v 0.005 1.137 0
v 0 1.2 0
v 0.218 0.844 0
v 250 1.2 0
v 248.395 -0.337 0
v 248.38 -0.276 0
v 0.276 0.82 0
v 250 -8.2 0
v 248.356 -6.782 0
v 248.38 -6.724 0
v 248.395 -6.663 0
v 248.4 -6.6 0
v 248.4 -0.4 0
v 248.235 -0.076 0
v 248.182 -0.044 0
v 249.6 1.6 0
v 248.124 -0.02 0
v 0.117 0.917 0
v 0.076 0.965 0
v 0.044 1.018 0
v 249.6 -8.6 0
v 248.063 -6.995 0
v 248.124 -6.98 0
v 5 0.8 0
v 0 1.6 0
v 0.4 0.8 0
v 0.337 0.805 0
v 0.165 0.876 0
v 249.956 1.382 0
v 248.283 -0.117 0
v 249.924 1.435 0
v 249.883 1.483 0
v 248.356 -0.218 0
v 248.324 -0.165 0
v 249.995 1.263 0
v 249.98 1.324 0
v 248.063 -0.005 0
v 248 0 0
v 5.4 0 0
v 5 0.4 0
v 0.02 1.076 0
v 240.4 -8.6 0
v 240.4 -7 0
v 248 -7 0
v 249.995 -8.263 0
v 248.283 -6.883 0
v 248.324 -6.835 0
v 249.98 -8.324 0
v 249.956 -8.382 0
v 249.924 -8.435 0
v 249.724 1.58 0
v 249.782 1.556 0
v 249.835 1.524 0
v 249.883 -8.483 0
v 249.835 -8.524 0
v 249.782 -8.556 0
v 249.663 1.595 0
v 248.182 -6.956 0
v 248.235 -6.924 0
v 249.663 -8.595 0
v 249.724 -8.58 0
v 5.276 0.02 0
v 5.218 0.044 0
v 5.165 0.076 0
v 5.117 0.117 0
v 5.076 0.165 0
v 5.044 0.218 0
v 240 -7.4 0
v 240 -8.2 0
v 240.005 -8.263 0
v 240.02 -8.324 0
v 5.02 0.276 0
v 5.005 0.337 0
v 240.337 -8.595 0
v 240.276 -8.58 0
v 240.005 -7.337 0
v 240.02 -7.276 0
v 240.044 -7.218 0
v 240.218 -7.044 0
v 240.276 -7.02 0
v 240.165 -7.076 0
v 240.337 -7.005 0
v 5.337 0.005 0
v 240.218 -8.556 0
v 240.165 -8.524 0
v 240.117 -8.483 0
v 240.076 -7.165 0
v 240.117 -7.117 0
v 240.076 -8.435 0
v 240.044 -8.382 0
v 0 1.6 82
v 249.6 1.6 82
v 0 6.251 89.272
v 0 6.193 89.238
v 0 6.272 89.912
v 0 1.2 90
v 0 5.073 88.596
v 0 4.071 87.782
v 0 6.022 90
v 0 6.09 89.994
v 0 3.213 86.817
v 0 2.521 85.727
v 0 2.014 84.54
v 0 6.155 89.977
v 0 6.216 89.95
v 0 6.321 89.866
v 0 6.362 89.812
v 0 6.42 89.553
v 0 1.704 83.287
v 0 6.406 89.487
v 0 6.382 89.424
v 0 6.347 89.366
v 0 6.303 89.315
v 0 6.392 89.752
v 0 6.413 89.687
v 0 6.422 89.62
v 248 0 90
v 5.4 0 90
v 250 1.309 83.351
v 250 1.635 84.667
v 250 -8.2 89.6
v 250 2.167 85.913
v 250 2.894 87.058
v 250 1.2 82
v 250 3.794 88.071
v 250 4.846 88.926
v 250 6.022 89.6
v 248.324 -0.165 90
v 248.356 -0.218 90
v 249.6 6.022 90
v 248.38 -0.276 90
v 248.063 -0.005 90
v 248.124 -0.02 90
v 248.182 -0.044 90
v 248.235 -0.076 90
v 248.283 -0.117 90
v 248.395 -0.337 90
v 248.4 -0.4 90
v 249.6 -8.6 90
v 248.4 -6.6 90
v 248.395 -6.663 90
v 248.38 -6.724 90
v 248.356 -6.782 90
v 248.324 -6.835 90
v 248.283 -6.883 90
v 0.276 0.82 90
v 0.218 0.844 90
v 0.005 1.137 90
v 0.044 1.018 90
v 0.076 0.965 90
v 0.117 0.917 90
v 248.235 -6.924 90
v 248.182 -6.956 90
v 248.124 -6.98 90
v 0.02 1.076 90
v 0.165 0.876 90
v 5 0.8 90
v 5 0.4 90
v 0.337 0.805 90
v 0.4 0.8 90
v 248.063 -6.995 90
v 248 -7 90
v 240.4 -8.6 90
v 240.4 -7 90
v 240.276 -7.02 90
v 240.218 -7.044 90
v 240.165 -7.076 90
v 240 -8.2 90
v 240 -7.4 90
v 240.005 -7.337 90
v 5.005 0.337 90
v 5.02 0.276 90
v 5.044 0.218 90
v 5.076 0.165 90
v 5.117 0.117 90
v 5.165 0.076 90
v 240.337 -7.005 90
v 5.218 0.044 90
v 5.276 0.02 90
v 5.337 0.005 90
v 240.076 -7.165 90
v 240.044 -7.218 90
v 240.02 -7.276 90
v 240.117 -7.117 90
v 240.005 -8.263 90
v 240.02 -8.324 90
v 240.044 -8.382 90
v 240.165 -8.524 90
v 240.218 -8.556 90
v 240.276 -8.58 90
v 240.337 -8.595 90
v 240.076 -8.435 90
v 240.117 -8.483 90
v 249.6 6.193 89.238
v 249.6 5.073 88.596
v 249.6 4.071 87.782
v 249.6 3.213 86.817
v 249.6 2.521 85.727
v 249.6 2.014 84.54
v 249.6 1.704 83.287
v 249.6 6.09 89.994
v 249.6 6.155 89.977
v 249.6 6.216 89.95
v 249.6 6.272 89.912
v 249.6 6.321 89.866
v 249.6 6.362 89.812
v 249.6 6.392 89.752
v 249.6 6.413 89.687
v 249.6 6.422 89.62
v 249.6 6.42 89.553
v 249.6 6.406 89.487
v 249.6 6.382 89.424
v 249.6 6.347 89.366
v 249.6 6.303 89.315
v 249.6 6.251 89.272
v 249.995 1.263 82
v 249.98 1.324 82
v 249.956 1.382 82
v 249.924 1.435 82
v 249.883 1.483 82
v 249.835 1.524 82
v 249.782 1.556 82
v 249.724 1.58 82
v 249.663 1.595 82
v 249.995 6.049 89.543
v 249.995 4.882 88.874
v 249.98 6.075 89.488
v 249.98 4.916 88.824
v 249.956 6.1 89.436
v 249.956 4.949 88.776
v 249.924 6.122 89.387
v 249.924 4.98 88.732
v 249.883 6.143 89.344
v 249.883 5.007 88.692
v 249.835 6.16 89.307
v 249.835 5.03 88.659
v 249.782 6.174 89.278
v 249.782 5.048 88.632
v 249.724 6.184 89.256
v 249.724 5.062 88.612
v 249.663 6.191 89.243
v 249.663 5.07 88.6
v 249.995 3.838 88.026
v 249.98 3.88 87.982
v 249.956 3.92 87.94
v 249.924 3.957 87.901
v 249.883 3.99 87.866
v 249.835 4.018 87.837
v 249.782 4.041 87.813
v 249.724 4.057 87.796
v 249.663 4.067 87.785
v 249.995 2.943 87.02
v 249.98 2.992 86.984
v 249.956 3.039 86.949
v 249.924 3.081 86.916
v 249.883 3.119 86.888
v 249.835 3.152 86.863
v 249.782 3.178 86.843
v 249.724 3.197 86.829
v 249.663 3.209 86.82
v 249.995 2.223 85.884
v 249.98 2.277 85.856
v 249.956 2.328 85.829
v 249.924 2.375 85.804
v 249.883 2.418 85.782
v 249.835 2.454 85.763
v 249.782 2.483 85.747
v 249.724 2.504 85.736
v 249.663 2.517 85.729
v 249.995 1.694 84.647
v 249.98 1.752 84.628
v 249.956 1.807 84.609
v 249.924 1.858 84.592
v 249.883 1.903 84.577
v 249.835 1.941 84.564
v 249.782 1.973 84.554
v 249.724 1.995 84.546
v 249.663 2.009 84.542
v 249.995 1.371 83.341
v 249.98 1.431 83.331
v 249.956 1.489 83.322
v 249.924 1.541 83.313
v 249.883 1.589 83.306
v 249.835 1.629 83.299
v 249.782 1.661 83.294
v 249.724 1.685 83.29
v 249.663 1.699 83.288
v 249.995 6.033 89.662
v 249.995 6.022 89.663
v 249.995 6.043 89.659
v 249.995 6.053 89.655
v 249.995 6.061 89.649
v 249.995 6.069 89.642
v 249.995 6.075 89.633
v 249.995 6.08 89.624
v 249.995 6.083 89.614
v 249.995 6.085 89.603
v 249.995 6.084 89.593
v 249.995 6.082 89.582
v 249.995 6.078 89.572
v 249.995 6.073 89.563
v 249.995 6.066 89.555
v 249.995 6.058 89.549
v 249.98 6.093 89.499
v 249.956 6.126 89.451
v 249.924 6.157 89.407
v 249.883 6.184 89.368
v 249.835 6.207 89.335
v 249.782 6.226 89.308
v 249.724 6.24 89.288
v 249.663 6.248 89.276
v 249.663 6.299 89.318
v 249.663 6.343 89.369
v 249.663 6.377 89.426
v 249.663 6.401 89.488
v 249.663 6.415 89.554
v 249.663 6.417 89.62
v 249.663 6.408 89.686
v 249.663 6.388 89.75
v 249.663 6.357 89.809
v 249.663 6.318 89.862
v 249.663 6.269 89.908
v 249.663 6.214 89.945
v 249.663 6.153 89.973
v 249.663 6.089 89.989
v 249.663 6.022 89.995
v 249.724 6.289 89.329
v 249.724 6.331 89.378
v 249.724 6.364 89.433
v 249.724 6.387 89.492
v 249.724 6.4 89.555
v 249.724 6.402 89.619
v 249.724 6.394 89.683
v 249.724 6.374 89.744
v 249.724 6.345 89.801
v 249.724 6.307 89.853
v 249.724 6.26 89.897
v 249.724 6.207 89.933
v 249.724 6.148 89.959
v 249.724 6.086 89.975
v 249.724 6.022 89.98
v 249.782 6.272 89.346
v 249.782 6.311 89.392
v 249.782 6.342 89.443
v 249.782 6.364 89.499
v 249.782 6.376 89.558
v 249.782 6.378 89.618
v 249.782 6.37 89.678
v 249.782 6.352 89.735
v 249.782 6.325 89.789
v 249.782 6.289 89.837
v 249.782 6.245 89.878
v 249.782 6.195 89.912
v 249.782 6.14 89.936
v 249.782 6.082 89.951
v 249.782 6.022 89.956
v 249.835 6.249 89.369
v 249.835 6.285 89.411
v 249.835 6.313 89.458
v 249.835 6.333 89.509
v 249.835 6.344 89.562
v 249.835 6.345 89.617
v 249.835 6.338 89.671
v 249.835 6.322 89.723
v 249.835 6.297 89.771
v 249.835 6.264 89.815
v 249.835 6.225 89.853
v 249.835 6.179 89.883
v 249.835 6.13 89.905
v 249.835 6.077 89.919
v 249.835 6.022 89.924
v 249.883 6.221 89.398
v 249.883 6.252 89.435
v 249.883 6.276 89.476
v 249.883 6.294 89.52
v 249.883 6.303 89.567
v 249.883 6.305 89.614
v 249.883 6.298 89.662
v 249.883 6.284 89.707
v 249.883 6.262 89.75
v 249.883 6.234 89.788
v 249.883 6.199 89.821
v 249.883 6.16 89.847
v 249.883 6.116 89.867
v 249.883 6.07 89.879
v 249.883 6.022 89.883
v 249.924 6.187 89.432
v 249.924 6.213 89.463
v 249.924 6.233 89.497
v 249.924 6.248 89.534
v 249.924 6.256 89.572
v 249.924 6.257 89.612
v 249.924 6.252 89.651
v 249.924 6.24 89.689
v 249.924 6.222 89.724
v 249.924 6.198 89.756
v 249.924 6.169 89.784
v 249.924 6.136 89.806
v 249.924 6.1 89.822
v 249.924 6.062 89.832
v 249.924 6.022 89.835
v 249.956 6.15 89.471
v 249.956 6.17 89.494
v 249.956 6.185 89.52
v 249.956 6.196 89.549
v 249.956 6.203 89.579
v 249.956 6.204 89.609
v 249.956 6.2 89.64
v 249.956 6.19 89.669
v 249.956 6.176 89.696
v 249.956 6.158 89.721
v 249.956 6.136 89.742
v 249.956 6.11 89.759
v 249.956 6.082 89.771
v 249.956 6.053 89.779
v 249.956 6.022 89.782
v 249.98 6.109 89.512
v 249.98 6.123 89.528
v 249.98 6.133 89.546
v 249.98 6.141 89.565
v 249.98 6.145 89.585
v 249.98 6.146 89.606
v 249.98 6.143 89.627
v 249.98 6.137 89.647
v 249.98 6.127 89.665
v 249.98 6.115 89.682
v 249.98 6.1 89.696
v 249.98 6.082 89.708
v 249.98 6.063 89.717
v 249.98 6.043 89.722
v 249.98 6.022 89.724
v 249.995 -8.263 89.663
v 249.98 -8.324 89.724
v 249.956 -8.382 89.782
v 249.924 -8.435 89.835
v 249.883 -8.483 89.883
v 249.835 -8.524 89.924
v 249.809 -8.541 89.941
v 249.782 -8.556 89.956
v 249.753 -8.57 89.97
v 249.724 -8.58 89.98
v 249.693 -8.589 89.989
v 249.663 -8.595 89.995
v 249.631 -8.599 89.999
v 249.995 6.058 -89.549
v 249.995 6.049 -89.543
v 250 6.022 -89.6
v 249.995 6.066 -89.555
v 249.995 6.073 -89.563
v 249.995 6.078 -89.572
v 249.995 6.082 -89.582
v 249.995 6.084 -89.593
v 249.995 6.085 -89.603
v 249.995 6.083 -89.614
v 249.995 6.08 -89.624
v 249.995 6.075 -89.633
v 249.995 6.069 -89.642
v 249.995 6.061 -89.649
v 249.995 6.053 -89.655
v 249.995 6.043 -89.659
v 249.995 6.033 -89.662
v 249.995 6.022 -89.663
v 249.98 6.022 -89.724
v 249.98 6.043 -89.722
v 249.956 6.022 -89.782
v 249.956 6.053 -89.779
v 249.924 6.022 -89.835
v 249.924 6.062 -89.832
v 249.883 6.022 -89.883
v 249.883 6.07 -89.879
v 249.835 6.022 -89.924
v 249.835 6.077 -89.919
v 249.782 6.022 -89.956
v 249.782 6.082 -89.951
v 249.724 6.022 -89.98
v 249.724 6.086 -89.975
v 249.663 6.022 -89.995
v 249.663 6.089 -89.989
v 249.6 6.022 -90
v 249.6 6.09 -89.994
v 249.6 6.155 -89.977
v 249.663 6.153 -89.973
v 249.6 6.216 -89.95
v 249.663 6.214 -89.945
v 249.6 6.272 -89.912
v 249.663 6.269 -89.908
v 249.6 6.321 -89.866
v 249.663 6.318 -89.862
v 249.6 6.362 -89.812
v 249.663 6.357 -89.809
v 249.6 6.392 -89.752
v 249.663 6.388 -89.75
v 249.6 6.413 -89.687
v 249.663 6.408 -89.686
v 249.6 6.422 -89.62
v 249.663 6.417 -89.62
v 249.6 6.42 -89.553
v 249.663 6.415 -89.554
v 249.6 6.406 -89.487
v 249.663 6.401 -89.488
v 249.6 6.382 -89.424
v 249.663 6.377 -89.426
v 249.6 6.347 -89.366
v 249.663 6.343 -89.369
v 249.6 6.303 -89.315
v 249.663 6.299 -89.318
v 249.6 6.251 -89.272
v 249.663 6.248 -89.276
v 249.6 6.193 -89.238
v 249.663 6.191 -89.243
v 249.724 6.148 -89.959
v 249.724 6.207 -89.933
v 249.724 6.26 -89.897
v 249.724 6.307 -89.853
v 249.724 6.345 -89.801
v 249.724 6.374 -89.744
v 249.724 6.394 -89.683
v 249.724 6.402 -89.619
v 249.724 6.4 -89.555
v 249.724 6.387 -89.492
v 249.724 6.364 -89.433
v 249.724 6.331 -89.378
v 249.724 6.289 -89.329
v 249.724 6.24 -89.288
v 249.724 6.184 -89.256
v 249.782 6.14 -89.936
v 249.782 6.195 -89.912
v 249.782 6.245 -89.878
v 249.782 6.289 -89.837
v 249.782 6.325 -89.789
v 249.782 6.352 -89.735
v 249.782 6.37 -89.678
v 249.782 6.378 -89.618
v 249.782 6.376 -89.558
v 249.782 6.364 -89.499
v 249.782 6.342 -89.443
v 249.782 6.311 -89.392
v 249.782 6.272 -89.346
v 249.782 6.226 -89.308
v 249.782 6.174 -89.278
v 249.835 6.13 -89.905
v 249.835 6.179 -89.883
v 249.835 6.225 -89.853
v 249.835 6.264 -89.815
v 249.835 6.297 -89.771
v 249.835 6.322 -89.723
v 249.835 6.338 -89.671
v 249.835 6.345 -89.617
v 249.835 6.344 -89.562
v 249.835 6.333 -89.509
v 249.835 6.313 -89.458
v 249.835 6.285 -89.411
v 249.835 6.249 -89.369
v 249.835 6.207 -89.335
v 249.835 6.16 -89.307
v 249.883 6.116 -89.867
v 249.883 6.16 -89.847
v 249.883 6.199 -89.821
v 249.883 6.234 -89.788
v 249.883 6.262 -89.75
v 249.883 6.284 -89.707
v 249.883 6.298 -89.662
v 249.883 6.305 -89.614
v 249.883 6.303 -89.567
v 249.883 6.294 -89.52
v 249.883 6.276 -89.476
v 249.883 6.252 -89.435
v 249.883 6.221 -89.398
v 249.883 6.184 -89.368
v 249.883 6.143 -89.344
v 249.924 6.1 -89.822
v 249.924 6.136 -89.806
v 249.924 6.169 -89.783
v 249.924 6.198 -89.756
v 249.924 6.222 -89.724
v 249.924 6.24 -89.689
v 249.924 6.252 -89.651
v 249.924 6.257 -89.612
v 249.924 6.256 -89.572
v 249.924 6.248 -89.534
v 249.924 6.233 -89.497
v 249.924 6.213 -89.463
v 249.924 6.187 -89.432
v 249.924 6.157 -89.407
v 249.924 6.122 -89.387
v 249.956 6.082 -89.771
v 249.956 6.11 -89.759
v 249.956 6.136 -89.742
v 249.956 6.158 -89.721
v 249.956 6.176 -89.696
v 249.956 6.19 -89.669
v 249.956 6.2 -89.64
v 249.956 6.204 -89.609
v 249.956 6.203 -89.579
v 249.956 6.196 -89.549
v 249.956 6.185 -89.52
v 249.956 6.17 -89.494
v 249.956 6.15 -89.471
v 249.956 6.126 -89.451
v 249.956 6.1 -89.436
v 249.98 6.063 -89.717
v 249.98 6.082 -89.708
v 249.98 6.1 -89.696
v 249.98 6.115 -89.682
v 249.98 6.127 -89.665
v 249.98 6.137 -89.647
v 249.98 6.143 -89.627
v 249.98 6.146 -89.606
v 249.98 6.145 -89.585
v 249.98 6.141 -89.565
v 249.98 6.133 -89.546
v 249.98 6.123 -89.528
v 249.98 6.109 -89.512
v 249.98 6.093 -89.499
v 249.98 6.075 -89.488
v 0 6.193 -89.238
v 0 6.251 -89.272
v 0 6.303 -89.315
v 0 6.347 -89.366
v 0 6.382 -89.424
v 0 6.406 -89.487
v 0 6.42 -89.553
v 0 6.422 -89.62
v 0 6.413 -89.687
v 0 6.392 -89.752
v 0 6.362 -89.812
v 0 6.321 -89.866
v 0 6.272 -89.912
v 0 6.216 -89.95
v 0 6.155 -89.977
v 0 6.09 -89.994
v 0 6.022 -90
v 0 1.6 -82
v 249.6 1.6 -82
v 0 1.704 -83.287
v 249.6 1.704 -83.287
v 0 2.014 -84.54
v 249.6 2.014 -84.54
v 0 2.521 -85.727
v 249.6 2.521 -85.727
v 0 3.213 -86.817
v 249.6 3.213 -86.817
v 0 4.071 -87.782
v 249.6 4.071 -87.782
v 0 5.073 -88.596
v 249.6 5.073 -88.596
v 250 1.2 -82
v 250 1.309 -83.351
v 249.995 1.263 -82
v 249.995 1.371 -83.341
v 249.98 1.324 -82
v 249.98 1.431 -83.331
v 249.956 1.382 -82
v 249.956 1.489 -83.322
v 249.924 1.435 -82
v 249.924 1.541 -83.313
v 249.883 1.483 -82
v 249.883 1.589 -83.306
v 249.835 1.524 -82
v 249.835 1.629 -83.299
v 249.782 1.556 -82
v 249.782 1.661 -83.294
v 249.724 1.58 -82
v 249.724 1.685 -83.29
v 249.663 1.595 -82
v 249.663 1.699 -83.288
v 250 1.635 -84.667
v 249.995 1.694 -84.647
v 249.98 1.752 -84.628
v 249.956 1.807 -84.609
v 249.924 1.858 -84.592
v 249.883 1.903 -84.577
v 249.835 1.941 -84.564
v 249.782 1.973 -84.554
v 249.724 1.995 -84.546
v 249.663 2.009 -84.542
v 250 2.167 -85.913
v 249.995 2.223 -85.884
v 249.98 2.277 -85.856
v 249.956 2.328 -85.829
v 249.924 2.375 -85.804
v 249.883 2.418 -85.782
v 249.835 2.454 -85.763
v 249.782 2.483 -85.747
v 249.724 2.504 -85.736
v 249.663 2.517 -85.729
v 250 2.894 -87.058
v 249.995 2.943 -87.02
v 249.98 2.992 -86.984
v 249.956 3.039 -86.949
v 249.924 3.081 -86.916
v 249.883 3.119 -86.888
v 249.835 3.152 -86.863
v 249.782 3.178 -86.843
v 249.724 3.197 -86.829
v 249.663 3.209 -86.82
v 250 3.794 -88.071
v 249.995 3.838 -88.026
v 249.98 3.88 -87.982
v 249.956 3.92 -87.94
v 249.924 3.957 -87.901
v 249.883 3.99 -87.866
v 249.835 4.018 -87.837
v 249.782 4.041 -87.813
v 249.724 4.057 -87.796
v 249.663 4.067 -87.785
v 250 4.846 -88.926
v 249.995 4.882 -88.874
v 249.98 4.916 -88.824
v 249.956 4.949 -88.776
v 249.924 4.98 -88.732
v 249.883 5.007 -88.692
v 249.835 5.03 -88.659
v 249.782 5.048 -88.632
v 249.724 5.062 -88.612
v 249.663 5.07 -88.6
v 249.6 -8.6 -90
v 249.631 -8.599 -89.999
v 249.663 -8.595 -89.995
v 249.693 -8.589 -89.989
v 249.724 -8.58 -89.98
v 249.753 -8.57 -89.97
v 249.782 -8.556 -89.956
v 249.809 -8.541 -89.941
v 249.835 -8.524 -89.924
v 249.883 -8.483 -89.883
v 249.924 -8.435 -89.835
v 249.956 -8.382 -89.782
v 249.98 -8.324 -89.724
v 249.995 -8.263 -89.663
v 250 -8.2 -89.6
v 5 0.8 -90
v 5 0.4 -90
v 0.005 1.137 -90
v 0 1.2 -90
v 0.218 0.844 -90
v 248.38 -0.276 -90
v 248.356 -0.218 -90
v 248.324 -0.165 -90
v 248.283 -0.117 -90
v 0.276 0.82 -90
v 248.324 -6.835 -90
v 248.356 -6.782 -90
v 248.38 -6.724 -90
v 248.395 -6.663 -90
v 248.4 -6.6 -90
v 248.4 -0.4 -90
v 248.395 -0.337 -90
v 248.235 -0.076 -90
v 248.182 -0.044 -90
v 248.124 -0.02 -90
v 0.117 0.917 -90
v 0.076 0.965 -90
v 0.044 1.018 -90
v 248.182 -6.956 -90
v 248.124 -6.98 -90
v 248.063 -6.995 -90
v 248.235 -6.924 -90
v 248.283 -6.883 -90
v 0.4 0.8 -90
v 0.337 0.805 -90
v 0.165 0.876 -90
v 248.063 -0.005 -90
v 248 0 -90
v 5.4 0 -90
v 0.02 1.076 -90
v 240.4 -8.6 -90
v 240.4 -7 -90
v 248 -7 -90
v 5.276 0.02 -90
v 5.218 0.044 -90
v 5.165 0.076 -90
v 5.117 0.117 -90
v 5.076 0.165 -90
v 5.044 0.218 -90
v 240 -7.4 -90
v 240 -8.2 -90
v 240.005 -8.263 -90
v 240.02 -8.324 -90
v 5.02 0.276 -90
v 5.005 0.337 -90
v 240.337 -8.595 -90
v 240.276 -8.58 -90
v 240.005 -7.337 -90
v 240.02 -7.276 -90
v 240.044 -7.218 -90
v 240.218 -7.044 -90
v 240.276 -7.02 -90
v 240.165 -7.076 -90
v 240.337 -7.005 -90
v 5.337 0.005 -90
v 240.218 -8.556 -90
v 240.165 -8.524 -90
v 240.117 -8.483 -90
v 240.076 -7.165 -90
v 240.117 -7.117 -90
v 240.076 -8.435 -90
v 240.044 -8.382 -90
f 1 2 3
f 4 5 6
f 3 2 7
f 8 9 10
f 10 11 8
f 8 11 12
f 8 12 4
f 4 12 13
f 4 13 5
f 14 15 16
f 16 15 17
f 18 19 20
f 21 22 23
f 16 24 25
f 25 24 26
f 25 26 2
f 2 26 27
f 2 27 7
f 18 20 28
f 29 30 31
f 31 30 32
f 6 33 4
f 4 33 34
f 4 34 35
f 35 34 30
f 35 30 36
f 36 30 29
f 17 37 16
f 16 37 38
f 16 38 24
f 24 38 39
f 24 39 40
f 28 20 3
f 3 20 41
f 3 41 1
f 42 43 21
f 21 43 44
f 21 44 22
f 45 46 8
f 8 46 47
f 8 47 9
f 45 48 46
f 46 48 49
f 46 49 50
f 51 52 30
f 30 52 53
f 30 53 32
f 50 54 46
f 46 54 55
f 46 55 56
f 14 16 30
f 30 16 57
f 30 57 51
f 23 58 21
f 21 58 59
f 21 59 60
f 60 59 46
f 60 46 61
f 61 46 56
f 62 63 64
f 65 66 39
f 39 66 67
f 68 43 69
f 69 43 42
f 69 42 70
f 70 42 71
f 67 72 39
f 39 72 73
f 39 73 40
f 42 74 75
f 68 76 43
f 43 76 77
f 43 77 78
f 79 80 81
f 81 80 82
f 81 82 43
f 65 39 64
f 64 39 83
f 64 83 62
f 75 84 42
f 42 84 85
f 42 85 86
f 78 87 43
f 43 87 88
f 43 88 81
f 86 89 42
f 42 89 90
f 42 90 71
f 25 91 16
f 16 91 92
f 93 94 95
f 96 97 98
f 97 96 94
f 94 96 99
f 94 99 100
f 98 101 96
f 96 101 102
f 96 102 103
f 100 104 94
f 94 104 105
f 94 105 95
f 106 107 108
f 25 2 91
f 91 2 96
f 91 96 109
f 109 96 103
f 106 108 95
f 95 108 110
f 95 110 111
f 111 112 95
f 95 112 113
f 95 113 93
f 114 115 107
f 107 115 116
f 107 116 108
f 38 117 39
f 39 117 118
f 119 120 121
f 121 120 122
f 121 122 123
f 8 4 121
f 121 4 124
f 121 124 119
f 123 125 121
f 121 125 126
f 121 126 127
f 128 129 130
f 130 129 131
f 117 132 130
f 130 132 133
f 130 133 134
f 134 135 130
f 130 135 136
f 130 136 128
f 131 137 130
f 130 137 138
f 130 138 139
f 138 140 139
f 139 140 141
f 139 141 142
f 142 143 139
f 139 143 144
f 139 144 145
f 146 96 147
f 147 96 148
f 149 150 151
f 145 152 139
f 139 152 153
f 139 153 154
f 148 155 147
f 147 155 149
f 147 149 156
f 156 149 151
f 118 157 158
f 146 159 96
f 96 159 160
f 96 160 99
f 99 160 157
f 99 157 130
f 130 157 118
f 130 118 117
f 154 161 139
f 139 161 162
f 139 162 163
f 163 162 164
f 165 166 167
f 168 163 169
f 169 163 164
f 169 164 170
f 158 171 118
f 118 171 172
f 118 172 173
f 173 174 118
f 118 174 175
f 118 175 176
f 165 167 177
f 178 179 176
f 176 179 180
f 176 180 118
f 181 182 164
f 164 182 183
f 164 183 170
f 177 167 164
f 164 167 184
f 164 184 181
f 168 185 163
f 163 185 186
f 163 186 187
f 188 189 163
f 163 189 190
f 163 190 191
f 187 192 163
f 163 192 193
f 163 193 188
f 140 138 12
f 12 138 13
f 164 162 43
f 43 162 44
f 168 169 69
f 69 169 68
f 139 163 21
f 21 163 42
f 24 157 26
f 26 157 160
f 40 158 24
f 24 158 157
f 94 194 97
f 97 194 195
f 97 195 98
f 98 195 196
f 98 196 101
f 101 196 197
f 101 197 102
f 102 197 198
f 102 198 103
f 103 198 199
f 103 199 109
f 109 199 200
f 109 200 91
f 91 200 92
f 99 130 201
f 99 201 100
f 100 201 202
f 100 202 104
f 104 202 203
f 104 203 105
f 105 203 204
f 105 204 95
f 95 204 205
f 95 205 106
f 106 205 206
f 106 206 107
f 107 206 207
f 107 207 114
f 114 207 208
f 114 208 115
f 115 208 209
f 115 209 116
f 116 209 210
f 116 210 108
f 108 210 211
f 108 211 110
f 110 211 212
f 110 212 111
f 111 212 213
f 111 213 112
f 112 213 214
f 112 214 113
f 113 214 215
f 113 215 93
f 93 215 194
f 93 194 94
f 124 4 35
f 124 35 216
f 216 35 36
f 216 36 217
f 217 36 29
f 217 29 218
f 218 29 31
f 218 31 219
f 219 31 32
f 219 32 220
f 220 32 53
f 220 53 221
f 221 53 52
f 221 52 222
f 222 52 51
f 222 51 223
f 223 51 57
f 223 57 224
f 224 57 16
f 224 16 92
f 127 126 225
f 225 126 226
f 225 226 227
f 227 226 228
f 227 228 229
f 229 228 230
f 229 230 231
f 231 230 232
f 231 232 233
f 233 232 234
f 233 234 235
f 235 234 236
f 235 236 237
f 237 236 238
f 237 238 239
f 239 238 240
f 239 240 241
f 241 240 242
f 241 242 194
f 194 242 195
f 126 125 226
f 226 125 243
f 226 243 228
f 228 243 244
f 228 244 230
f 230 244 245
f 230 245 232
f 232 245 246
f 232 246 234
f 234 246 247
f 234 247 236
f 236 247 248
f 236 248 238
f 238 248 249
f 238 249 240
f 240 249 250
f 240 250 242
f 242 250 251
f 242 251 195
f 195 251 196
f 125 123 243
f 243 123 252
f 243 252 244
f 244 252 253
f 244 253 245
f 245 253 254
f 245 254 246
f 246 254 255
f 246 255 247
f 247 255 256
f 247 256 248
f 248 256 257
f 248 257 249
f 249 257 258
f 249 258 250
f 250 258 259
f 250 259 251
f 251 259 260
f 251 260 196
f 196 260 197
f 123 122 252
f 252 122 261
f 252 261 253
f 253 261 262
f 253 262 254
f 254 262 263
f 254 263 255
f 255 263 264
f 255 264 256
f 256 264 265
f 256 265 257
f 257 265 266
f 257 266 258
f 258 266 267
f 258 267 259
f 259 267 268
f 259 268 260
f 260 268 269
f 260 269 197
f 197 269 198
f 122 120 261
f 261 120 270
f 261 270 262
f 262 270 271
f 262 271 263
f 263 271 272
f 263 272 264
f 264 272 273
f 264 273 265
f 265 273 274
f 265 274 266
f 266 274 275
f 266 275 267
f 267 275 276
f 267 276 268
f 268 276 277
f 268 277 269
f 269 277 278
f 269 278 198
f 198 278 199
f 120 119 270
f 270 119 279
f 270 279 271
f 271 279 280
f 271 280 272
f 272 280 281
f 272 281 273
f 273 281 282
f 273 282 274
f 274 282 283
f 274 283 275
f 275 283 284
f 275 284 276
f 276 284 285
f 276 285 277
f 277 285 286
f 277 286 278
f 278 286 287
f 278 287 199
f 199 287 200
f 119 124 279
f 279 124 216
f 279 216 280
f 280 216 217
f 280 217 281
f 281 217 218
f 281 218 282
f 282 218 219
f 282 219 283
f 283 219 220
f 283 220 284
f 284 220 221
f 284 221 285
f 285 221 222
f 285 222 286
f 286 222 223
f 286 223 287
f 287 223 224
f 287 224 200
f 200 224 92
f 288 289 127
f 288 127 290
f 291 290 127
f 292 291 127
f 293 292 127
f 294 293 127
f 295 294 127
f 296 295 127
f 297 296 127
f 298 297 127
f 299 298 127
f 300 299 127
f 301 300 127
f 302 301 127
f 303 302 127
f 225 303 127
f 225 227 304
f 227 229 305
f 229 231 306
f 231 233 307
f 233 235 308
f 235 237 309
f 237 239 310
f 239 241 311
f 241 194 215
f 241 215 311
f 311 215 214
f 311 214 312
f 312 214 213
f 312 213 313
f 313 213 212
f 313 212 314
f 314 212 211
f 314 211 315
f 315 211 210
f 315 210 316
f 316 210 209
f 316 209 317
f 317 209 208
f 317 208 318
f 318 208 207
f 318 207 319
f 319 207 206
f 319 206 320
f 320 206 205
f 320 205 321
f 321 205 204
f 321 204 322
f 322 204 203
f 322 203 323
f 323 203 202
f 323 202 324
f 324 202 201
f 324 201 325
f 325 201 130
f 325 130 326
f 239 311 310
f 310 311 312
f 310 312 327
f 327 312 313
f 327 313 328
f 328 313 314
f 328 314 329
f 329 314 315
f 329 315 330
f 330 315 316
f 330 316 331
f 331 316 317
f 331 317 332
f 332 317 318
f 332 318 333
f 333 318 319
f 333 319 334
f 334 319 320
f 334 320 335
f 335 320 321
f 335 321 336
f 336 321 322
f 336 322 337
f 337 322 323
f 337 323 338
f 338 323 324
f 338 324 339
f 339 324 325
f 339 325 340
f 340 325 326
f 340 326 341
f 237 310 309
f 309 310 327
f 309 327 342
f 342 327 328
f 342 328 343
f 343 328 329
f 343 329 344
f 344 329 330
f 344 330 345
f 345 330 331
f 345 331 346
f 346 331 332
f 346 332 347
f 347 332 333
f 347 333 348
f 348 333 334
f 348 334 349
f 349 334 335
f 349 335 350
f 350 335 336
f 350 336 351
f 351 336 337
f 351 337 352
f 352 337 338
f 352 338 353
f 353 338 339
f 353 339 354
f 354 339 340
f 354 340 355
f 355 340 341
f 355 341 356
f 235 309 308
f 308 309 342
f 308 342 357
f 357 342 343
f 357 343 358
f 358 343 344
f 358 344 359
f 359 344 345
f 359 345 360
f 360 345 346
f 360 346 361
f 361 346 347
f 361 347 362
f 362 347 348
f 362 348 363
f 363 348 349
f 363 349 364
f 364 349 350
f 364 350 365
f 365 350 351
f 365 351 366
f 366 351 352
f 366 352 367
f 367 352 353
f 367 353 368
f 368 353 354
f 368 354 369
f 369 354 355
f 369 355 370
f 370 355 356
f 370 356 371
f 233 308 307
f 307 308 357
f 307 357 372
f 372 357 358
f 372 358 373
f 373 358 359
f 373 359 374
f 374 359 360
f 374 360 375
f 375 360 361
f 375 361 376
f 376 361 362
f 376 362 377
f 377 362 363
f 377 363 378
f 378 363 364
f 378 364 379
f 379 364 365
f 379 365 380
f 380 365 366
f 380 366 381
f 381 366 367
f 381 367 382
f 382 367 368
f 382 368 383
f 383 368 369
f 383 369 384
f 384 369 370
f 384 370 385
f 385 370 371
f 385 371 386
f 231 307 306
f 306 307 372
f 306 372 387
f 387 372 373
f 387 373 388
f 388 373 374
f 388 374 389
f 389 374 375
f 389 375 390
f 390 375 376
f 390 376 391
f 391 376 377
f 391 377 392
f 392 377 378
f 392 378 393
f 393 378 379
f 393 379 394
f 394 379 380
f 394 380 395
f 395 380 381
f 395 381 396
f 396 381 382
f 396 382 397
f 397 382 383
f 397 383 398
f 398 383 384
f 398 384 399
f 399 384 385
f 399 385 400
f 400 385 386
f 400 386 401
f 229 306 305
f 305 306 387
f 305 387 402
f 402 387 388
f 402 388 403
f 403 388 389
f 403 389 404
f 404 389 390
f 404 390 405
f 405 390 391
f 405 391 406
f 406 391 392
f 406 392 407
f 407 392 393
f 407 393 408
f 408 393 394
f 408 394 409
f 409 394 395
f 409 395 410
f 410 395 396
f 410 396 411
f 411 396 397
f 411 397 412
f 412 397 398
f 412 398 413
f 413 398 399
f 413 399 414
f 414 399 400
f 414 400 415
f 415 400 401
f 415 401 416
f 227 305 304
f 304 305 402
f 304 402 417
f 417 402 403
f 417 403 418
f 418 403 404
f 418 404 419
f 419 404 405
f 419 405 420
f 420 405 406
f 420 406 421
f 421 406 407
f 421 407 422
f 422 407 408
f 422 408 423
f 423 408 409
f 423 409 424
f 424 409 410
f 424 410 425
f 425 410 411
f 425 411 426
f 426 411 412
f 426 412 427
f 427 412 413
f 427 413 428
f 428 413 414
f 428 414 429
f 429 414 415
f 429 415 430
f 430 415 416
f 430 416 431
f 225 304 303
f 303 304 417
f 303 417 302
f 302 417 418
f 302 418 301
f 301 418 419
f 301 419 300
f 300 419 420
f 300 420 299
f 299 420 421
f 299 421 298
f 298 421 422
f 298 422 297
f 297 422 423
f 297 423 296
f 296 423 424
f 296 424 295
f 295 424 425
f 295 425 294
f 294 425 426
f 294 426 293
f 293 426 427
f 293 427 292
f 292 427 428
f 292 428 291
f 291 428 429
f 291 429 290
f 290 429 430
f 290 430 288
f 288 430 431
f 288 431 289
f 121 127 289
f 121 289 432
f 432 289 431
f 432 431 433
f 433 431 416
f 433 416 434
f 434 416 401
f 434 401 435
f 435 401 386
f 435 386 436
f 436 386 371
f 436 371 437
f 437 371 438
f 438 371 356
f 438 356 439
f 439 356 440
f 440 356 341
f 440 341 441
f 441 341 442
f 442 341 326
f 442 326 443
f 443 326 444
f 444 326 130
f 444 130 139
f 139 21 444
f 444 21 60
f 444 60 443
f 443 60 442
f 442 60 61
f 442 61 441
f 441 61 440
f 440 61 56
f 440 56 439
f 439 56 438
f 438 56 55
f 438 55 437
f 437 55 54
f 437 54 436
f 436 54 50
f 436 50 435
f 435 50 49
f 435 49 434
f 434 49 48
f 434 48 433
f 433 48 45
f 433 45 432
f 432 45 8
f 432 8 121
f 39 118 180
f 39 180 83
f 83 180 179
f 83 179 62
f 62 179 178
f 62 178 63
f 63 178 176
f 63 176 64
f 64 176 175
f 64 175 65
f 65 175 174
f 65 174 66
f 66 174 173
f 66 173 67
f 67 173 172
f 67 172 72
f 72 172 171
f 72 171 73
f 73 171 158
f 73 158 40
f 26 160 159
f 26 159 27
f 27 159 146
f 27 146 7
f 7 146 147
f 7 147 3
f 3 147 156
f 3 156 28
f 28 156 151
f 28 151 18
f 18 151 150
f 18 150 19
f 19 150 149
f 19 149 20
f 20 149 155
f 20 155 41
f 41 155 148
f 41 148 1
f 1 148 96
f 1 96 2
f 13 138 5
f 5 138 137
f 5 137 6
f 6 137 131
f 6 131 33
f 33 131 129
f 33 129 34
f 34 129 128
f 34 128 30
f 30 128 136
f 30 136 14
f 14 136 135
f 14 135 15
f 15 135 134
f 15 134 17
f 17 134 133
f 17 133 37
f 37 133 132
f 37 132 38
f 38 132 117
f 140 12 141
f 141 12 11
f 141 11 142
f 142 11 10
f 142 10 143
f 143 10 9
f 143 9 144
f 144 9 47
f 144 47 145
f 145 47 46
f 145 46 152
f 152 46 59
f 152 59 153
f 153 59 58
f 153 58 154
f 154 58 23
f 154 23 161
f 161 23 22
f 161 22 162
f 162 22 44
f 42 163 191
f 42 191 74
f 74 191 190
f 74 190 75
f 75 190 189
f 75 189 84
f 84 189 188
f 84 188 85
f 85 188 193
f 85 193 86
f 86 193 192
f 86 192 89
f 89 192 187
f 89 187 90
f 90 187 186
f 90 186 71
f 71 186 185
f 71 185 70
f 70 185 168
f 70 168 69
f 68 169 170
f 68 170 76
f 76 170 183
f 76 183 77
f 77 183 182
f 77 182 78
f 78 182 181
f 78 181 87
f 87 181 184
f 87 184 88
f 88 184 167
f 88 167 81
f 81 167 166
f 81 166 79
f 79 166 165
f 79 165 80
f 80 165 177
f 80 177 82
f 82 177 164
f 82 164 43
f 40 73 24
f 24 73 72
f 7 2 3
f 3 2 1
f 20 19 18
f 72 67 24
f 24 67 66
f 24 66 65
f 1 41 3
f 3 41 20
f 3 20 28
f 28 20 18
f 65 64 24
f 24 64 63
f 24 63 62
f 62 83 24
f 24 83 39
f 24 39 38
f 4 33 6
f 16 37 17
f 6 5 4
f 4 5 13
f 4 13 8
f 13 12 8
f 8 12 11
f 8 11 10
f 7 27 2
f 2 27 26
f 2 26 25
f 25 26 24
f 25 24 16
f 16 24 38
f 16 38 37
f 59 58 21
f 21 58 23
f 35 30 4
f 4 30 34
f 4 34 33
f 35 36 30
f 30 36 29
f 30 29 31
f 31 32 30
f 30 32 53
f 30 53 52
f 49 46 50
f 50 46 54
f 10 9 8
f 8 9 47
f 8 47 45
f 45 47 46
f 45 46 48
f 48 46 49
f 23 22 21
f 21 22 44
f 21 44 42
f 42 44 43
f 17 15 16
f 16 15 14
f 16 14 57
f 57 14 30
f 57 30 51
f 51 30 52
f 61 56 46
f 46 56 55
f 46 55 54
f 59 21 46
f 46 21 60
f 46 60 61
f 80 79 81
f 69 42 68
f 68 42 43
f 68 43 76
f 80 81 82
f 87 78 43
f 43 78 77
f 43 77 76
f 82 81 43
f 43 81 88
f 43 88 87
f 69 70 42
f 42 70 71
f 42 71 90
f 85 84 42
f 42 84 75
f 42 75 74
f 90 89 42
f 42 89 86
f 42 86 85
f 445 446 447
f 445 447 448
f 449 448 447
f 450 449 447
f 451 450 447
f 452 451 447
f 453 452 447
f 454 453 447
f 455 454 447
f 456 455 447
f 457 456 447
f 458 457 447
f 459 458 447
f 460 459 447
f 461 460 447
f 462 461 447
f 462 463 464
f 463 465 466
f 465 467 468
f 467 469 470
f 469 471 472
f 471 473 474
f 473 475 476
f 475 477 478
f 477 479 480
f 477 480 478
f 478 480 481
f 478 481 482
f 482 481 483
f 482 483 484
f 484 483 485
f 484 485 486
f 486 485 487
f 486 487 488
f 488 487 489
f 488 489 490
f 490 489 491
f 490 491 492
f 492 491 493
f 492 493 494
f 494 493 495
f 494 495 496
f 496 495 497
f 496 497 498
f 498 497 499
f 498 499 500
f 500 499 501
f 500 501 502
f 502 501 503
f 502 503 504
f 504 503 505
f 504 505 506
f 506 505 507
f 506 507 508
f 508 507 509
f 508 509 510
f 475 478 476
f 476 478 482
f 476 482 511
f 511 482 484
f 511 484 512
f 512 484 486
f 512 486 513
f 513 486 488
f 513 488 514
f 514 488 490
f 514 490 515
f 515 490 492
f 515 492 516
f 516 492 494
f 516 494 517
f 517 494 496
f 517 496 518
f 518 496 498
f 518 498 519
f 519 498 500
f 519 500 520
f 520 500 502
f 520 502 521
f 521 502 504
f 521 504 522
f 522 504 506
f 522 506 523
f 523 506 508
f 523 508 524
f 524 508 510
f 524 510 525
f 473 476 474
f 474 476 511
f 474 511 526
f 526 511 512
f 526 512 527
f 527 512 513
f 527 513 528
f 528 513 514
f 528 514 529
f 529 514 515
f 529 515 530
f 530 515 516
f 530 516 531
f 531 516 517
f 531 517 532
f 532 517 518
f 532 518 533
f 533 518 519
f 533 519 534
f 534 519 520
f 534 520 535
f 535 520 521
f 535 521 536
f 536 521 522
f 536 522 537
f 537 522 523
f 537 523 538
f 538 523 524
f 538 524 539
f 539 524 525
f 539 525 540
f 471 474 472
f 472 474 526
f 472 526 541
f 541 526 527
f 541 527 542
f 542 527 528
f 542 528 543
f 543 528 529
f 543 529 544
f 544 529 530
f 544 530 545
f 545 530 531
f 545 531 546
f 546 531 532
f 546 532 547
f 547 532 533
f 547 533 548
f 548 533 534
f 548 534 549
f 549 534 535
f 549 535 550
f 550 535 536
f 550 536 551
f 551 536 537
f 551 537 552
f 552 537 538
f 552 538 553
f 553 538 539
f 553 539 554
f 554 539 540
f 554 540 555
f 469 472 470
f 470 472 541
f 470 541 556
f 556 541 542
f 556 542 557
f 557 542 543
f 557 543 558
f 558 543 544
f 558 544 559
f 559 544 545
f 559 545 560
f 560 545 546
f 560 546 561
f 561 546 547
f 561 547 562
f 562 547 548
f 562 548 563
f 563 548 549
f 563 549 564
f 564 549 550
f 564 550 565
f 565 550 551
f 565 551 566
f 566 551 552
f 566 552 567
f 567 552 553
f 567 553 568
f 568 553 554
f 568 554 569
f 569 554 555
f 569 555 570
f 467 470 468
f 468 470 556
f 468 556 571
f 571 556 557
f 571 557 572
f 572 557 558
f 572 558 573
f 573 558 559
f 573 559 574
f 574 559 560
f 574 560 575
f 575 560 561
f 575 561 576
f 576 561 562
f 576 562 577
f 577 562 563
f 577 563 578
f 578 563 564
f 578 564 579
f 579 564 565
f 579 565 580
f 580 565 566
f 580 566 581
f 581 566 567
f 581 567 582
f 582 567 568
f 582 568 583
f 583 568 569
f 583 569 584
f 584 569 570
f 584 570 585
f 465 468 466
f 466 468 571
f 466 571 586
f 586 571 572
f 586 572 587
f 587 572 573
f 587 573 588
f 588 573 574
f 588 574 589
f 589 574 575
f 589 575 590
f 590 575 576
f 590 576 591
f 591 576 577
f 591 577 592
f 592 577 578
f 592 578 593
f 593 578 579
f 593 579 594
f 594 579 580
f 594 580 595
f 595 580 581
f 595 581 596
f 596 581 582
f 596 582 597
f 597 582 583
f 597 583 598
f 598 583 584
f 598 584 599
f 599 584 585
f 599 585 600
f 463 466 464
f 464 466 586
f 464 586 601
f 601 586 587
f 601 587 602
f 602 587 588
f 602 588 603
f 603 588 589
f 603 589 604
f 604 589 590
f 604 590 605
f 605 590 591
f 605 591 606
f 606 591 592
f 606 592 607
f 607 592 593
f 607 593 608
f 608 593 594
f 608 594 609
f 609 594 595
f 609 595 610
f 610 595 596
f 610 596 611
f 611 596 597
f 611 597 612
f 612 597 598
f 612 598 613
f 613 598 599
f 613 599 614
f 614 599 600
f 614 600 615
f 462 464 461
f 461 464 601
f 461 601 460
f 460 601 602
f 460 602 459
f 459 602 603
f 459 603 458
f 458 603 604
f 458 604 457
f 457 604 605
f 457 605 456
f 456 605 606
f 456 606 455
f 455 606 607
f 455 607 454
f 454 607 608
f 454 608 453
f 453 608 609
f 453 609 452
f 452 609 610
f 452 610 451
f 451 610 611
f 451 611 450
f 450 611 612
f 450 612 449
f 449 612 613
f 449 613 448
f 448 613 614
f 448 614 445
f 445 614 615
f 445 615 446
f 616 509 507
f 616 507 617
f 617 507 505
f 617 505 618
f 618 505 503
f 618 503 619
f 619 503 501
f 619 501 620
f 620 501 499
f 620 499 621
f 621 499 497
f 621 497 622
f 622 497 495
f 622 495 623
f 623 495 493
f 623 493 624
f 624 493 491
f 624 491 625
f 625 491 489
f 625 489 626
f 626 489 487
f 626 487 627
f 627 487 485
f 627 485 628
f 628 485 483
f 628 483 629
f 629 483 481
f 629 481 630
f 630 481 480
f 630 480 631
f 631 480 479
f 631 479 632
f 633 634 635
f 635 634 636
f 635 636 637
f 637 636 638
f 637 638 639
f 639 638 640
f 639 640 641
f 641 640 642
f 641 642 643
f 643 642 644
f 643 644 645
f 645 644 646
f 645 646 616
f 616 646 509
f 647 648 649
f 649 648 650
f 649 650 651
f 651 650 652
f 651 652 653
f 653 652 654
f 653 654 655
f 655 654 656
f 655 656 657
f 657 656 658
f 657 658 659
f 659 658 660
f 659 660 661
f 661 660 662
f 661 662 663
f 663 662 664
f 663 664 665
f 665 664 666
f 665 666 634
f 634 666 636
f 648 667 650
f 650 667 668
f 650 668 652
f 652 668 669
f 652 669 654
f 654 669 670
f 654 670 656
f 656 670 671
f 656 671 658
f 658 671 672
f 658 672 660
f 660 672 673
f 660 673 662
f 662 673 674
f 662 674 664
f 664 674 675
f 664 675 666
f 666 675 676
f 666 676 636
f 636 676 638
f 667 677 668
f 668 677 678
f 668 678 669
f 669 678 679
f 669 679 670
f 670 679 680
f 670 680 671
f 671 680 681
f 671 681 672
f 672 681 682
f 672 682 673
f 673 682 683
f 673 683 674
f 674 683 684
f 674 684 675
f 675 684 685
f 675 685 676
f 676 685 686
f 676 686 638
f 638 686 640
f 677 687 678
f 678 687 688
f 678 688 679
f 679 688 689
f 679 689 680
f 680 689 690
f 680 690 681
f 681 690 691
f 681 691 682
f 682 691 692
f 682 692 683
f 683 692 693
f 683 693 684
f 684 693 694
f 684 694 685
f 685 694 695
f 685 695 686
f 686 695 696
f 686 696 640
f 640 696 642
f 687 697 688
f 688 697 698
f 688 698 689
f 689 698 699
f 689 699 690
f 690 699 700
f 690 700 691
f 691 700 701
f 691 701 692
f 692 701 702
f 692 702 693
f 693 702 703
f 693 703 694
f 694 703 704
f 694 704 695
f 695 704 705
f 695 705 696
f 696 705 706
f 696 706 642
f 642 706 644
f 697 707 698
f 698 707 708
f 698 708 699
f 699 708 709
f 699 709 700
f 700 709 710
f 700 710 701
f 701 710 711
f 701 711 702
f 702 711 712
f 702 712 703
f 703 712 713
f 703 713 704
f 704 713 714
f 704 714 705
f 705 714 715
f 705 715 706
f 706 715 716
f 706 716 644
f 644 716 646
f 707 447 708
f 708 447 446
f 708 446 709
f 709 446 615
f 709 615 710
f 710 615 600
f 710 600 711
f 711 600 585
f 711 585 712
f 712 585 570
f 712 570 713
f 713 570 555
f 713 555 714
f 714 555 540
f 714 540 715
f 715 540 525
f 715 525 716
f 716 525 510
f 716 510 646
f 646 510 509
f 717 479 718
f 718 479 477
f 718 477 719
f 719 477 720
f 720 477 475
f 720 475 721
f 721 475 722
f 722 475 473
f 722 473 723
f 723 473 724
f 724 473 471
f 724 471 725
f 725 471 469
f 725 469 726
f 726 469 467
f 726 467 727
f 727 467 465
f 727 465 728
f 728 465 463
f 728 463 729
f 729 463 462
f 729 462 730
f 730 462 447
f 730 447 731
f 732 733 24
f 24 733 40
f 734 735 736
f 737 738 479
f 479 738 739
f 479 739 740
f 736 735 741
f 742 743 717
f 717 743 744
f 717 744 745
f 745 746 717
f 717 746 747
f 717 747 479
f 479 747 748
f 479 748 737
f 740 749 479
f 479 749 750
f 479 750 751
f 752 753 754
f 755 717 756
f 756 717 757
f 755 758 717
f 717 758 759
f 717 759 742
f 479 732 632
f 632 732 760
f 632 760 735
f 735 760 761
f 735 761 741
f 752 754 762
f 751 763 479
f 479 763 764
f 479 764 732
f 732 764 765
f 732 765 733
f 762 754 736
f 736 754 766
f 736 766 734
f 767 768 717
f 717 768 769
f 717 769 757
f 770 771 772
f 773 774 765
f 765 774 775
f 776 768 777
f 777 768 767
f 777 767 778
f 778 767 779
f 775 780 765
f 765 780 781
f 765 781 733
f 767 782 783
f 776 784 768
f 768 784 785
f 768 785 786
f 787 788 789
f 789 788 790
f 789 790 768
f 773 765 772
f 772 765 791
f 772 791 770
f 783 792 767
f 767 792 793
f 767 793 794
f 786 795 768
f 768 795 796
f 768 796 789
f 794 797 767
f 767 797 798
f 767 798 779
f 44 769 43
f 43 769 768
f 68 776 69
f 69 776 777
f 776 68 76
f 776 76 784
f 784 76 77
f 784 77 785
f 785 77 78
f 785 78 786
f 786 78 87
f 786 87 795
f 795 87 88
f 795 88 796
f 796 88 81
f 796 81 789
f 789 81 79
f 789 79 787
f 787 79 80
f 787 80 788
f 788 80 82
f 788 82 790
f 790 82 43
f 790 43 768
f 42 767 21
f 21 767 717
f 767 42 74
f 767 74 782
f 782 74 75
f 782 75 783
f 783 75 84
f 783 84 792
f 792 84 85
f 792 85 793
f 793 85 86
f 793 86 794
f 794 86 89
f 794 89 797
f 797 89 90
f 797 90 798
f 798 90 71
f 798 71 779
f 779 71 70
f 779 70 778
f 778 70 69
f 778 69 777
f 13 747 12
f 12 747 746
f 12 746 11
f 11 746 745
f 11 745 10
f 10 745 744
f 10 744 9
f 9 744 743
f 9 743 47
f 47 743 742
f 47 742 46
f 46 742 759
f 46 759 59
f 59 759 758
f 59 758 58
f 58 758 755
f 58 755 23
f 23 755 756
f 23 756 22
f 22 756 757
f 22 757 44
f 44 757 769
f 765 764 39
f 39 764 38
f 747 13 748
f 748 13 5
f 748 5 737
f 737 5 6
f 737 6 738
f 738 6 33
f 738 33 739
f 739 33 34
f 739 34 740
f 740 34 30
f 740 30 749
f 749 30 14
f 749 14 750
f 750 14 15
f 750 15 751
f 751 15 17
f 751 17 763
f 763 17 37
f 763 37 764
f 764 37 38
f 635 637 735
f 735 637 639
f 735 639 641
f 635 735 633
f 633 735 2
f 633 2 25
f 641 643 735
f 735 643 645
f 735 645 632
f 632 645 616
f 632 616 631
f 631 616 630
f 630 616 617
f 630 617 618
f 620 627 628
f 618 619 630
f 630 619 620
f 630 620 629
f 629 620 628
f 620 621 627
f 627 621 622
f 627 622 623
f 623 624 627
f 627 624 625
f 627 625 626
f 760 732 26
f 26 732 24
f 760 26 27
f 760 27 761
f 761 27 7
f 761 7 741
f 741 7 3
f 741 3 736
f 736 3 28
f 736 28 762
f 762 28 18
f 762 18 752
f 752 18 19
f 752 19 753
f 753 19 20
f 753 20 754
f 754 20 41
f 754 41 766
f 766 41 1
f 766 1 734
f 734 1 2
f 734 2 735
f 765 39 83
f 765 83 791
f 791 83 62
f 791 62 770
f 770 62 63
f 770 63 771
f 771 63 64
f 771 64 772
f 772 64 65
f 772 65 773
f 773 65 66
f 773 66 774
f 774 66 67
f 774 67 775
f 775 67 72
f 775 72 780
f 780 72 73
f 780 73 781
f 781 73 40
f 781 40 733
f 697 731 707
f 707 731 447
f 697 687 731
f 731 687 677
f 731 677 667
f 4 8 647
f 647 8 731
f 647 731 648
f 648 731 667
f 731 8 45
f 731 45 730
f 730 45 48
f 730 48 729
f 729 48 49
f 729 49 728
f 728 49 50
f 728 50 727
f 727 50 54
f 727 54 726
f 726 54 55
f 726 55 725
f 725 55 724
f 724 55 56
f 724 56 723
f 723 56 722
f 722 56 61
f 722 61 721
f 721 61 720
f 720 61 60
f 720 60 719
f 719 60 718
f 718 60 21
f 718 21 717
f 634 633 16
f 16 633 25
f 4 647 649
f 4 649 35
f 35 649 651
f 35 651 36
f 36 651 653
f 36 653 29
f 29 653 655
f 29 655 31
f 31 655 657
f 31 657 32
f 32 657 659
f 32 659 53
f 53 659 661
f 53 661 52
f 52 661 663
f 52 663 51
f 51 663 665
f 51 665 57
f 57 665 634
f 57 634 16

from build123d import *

# Parameters (mm, degrees)
SKETCH1_W           = 250
SKETCH1_H           = 1.6
BOSS_EXTRUDE1_DEPTH = 90
BOSS_EXTRUDE2_DEPTH = 180
SKETCH3_W           = 5
SKETCH3_H           = 0.8
CUT_EXTRUDE1_DEPTH  = 309.178454795
BOSS_EXTRUDE3_DEPTH = 250
FILLET2_R           = 0.4
MIRROR1_DEPTH       = 250
FILLET1_R           = 0.4


# Read off the part's stored shape, not the designer's step: Mirror1
with BuildPart() as part:
    # Sketch1 → Boss-Extrude1 (new, symmetric)
    with BuildSketch(Plane.XY):
        with Locations((125, 0.8)):
            Rectangle(SKETCH1_W, SKETCH1_H)
    extrude(amount=BOSS_EXTRUDE1_DEPTH, both=True)

    # Sketch2 → Boss-Extrude2 (add)
    with BuildSketch(Plane.XY.offset(90)):
        Polygon((250, 0), (248.4, 0), (248.4, -7), (240, -7), (240, -8.6), (250, -8.6), align=None)
    extrude(amount=-BOSS_EXTRUDE2_DEPTH)

    # Sketch3 → Cut-Extrude1 (cut, through all)
    with BuildSketch(Plane.XY.offset(90)):
        with Locations((2.5, 0.4)):
            Rectangle(SKETCH3_W, SKETCH3_H)
    extrude(amount=-CUT_EXTRUDE1_DEPTH, mode=Mode.SUBTRACT)

    # Sketch6 → Boss-Extrude3 (add)
    with BuildSketch(Plane(origin=(250, 0, 0), x_dir=(0, 0, -1), z_dir=(1, 0, 0))):
        with BuildLine():
            Line((-90, 1.6), (-82, 1.6))
            ThreePointArc((-82, 1.6), (-87.656854249, 3.943145751), (-90, 9.6))
            Line((-90, 9.6), (-90, 1.6))
        make_face()
    extrude(amount=-BOSS_EXTRUDE3_DEPTH)

    # Fillet2
    fillet2_edges = [part.edges().sort_by_distance(p)[0] for p in [
        (125, 9.6, 90),
    ]]
    fillet(fillet2_edges, radius=FILLET2_R)

    # Mirror1 outline → Mirror1 (add)
    with BuildSketch(Plane.YZ):
        with BuildLine():
            Line((1.6, -82), (1.6, -90))
            Line((1.6, -90), (6.022291236, -90))
            ThreePointArc((6.022291236, -90), (6.412651265, -89.687287156), (6.19265832, -89.238095238))
            ThreePointArc((6.19265832, -89.238095238), (2.845048726, -86.286097675), (1.6, -82))
        make_face()
    extrude(amount=MIRROR1_DEPTH)

    # Fillet1
    fillet1_edges = [part.edges().sort_by_distance(p)[0] for p in [
        (250, -1.288854382, 90),
        (248.4, 0, 0),
        (248.4, -7, 0),
        (240, -7, 0),
        (240, -8.6, 0),
        (250, -8.6, 0),
        (0, 0.8, 0),
        (5, 0, 0),
        (250, 1.6, 0),
        (250, 2.845048726, 86.286097675),
        (250, -1.288854382, -90),
        (250, 6.412651265, 89.687287156),
        (250, 2.845048726, -86.286097675),
        (250, 6.412651265, -89.687287156),
    ]]
    fillet(fillet1_edges, radius=FILLET1_R - 0.0001)  # a hair under: the kernel refuses the full size


with BuildPart() as body_2:
    # Split1: the piece on the far side of the plane
    add(part.part)
    split(bisect_by=Plane.XY, keep=Keep.BOTTOM)


with BuildPart() as part_1:
    add(part.part)

    # Split1
    split(bisect_by=Plane.XY, keep=Keep.TOP)


solid = Compound([body_2.part, part_1.part])
